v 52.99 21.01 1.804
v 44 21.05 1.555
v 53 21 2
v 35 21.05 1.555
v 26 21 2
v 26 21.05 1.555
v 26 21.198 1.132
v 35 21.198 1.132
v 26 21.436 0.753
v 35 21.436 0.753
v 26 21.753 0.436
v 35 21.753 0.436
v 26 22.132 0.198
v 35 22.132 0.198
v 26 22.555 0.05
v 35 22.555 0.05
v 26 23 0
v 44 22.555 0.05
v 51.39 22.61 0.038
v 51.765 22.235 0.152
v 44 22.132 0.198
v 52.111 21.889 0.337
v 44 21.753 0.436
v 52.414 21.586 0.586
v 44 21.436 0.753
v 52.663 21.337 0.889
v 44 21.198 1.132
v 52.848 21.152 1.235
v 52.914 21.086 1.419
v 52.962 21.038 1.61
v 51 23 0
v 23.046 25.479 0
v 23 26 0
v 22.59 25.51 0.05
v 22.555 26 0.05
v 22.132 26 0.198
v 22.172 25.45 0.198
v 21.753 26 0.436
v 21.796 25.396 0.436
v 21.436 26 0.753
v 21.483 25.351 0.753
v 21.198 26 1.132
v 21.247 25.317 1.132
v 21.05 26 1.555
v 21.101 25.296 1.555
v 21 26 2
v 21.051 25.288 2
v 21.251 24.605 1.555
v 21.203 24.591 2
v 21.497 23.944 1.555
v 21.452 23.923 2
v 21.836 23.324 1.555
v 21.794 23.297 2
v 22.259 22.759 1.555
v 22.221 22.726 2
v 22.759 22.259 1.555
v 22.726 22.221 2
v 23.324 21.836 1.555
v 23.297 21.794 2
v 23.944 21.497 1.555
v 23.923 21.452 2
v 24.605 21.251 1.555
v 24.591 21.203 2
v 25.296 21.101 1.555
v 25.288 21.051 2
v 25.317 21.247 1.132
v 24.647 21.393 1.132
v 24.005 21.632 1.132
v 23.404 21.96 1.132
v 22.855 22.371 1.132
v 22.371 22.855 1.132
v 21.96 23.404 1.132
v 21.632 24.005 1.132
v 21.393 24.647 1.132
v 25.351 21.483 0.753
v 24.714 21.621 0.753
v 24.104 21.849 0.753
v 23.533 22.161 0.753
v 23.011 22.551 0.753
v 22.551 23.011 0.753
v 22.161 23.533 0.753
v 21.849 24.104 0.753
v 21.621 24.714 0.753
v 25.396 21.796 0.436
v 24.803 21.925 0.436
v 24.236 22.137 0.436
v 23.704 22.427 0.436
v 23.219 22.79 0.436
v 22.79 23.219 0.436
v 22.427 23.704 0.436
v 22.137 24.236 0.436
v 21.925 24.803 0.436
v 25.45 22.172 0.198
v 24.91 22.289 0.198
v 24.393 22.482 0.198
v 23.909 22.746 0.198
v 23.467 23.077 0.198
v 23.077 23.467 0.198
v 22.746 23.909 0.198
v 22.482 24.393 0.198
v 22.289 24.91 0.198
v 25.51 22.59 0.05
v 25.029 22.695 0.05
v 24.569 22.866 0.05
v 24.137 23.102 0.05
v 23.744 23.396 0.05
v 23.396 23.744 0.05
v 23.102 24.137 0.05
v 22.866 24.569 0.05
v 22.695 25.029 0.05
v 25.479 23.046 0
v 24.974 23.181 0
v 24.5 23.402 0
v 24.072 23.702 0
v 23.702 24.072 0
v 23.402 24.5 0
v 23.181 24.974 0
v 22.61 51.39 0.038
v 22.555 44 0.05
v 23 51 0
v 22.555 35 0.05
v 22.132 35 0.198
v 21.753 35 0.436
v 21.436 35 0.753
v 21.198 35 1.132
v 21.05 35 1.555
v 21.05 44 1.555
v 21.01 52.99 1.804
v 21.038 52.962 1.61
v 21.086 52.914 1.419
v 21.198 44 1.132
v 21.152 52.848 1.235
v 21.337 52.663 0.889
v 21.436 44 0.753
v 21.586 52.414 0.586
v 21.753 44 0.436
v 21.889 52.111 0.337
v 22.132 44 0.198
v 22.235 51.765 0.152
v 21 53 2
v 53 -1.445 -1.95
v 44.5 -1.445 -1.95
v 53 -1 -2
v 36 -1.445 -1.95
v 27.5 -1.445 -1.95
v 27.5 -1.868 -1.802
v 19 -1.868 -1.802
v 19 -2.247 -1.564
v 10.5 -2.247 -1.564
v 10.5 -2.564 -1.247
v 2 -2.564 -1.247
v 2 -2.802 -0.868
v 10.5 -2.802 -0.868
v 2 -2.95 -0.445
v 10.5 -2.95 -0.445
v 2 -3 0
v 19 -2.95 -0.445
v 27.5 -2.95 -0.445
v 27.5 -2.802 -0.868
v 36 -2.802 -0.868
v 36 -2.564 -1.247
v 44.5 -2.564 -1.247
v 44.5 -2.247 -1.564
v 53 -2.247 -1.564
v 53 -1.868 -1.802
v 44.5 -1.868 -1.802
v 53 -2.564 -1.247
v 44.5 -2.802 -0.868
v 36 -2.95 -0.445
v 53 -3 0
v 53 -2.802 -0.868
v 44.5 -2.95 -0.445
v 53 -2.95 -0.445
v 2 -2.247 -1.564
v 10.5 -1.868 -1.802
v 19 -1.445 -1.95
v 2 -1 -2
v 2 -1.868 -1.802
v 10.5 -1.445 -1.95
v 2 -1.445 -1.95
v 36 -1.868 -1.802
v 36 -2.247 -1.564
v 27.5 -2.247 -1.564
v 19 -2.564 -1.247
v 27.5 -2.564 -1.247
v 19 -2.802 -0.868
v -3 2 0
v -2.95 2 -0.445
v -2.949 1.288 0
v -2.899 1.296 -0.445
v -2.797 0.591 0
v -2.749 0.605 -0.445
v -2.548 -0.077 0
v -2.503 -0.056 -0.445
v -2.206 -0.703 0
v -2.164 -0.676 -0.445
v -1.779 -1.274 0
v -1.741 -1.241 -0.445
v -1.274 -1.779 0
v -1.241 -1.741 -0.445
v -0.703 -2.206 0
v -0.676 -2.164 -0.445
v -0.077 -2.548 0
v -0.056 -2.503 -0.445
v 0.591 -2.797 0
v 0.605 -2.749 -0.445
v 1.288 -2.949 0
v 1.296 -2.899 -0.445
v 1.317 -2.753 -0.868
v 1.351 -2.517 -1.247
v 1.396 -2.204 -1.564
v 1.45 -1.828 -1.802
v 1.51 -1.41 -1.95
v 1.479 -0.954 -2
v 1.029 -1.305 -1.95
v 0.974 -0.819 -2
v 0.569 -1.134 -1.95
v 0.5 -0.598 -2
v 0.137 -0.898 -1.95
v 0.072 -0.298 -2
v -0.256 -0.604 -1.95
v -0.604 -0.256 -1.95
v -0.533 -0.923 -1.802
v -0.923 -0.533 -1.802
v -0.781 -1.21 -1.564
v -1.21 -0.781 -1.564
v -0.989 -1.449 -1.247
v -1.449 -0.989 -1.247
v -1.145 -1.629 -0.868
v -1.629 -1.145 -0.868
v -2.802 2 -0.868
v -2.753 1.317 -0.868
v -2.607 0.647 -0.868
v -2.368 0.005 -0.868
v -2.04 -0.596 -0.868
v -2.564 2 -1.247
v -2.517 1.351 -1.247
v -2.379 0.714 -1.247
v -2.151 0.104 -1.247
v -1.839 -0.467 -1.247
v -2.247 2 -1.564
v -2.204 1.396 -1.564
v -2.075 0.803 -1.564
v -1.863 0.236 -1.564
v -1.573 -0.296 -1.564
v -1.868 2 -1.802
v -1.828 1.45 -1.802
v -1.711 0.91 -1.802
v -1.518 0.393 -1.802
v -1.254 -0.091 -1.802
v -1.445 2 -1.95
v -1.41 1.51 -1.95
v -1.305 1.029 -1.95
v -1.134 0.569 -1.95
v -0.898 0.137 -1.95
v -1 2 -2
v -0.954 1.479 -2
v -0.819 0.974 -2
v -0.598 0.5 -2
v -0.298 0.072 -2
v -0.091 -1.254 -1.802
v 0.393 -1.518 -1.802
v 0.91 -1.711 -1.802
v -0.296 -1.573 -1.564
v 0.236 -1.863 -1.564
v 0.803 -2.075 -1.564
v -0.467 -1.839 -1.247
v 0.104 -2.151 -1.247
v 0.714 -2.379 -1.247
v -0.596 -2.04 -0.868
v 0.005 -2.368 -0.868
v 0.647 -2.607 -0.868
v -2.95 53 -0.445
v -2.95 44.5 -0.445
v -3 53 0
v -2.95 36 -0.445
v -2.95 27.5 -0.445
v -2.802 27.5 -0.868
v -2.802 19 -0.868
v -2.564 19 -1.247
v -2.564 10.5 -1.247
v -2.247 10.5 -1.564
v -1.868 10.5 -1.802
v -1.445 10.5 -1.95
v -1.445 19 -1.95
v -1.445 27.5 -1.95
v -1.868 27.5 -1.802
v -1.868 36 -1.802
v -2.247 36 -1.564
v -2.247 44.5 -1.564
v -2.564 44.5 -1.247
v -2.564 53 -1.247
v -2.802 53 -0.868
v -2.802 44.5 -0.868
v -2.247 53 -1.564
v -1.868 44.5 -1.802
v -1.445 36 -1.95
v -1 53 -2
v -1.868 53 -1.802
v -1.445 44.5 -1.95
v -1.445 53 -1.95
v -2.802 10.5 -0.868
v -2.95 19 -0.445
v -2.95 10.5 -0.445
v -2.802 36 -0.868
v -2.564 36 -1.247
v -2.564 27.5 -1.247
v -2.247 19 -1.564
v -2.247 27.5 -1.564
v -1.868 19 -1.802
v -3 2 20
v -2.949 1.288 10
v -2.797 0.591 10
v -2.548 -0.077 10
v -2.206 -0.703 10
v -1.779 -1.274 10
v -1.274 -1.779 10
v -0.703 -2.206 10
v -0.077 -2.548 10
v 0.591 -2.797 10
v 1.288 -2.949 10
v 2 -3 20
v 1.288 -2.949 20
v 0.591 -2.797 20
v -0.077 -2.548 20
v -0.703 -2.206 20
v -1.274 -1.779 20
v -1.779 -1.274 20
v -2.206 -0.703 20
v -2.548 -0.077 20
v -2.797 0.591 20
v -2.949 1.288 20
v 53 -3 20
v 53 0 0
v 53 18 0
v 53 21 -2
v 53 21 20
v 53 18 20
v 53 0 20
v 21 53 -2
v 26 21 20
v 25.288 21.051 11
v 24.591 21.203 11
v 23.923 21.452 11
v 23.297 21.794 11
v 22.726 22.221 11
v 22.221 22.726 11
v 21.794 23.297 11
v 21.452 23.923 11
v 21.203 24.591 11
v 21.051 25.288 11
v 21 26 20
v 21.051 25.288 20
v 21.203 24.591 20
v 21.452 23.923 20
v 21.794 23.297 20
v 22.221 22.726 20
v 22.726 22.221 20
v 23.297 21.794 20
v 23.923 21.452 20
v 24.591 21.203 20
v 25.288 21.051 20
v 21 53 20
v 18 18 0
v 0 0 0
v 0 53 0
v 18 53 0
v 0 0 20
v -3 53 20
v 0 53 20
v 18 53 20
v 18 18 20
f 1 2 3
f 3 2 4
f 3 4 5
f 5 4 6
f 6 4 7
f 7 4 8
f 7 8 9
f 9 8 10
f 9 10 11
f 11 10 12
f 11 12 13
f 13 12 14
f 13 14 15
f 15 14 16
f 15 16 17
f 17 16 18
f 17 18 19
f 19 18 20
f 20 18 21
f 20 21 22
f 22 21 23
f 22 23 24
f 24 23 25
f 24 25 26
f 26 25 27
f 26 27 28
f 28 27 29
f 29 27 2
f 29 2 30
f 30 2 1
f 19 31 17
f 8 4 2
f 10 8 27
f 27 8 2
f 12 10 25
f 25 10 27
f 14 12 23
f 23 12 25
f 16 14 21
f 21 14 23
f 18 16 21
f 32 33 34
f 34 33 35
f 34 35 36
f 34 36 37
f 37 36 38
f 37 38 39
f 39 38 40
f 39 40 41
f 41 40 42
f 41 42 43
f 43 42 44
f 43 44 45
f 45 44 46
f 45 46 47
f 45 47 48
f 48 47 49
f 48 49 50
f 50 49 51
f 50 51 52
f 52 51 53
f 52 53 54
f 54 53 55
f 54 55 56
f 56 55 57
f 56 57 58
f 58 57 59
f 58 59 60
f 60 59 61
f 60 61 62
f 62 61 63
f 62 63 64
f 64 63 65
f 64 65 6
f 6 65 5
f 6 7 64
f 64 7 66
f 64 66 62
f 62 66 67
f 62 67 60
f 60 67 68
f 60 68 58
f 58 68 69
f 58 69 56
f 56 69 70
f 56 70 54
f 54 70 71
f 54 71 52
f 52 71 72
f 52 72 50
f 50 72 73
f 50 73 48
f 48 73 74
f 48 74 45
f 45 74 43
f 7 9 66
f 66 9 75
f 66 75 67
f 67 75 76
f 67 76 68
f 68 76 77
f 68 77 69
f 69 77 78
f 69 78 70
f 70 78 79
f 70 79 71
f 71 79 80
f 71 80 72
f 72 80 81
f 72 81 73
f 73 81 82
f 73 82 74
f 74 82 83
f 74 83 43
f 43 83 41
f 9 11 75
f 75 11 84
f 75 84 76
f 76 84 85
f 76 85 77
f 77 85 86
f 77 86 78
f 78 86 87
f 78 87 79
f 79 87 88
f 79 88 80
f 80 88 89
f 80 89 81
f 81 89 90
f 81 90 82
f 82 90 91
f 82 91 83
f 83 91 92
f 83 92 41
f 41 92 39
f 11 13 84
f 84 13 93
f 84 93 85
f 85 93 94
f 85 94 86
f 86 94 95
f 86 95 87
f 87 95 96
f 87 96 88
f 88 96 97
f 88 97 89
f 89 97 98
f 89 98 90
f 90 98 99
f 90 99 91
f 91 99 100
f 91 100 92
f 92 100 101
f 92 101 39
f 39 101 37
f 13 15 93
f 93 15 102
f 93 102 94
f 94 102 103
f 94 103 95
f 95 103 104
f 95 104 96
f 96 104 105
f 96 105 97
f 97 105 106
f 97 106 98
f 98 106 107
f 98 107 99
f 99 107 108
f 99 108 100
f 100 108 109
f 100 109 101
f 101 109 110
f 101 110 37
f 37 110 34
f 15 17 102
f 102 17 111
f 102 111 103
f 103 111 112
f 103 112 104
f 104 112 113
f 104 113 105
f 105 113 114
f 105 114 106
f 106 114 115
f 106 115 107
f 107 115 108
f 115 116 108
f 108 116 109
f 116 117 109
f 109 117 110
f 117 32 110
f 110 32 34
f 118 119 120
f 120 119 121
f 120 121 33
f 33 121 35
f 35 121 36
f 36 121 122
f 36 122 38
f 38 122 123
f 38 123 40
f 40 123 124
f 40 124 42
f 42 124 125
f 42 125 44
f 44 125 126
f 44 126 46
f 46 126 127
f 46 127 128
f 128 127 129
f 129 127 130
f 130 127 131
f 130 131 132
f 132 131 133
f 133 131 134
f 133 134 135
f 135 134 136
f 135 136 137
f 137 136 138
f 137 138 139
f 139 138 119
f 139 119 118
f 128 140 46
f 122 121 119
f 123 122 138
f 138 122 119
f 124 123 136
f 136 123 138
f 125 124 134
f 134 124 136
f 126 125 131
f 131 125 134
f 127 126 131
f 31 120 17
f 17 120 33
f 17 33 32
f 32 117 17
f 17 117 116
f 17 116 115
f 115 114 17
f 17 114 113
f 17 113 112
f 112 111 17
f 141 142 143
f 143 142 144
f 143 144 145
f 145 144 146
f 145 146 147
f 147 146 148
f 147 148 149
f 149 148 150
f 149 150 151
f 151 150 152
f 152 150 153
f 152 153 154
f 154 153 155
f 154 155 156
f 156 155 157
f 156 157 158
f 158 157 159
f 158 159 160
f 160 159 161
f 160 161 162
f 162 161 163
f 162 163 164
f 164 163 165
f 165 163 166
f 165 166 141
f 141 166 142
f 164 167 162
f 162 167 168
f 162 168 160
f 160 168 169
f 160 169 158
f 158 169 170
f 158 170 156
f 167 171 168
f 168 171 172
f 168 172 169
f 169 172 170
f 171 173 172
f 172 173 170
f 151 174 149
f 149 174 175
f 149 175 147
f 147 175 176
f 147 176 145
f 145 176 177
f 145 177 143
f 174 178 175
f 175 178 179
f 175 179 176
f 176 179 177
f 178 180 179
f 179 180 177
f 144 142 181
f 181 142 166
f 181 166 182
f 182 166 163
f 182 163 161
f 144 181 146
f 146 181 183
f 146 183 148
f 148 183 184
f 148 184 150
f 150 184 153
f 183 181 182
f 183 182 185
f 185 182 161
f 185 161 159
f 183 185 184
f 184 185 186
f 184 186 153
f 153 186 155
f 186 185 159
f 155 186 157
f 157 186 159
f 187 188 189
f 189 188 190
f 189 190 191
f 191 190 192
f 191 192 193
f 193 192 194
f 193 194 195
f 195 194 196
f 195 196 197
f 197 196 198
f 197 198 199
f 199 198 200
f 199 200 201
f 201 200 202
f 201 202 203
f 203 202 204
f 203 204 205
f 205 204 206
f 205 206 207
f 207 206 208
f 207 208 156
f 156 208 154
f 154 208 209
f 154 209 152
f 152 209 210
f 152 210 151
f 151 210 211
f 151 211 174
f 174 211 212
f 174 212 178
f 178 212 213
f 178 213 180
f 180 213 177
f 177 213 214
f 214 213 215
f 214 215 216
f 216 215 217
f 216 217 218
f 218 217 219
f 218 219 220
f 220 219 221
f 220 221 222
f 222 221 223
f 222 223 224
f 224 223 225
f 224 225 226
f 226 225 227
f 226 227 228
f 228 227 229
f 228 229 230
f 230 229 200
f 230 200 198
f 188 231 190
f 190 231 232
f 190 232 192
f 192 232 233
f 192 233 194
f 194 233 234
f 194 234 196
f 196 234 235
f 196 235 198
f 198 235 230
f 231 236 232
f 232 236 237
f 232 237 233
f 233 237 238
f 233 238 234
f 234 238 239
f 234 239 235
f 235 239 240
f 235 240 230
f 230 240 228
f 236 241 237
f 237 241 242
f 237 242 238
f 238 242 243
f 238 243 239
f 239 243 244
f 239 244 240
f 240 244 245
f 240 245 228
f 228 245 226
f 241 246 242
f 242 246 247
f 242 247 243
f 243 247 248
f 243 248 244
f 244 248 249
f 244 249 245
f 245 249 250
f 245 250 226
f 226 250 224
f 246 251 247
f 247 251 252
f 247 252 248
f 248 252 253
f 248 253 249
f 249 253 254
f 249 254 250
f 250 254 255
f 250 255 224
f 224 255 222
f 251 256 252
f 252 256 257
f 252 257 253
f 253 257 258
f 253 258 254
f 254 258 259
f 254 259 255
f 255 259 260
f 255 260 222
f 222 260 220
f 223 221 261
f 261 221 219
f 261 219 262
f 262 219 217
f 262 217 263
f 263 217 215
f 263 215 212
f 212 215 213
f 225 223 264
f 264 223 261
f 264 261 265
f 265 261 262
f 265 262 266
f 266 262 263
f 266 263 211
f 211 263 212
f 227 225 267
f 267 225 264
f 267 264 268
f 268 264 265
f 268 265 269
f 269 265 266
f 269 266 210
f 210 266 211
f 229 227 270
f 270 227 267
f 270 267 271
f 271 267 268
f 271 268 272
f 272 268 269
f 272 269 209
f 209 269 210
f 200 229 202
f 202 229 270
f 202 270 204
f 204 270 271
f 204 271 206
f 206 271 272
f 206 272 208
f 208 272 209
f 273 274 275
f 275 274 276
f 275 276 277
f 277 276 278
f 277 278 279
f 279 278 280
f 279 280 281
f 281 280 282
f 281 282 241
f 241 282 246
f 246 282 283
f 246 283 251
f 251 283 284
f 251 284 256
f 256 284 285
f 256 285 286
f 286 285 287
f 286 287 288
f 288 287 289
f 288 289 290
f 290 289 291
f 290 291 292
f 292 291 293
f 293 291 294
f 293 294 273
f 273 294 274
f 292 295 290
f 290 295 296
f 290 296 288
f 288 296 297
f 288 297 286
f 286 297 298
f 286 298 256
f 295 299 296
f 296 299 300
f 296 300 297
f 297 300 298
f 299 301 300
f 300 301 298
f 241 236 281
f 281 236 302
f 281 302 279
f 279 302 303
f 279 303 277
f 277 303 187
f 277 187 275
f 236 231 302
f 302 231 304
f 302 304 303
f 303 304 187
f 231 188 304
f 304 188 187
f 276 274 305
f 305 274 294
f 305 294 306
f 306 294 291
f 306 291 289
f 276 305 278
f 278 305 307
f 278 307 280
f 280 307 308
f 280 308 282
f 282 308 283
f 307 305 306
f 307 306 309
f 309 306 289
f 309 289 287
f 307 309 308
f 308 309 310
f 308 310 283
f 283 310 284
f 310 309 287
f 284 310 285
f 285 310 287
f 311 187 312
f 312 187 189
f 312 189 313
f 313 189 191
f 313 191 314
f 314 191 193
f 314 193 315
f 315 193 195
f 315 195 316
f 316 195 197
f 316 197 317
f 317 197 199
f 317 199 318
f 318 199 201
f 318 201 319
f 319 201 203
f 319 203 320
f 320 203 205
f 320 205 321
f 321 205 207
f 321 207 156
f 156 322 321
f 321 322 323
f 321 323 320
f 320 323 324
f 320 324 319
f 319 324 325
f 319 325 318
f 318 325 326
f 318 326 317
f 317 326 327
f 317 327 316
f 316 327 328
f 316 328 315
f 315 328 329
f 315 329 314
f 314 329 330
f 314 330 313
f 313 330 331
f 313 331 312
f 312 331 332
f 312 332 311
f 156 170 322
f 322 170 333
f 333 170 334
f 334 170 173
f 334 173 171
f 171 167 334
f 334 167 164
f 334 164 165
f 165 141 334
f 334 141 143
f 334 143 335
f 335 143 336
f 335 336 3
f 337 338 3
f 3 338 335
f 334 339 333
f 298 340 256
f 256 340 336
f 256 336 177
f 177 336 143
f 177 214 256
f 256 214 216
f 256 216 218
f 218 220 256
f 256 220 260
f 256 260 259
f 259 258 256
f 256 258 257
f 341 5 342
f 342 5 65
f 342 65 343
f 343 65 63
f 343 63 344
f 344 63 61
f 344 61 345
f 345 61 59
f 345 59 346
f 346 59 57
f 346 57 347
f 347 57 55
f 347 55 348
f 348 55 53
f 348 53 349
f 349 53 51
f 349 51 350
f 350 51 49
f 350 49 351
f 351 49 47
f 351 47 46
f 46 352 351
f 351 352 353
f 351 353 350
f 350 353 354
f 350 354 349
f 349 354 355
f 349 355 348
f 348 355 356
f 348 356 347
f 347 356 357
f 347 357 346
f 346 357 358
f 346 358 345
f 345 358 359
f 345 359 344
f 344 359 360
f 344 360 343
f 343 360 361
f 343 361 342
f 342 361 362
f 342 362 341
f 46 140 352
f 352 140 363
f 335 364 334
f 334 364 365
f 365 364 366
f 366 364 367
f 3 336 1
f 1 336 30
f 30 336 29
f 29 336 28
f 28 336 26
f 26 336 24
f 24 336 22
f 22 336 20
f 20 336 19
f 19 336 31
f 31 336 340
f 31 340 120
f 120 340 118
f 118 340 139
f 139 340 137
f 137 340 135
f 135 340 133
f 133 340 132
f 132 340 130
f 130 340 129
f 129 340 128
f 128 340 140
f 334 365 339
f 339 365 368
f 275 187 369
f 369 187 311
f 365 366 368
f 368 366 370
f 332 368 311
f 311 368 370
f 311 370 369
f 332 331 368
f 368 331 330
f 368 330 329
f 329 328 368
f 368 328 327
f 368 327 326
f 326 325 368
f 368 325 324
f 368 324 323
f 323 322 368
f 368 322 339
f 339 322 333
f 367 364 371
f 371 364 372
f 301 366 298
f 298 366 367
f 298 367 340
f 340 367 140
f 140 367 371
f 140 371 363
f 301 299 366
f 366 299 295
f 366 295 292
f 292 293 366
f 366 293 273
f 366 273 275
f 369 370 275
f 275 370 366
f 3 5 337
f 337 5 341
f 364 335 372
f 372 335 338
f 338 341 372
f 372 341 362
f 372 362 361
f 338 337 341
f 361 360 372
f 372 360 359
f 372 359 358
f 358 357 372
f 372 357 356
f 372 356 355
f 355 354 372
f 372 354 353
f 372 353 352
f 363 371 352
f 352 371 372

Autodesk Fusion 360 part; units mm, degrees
sketch "Sketch1" plane through (0, 0, 0) normal (0, 0, 1) x (1, 0, 0)
  line L0 (0, 0) -> (18, 0) construction
  line L1 (18, 18) -> (18, 50)
  line L2 (0, 50) -> (0, 0)
  line L3 (0, 0) -> (50, 0)
  line L4 (50, 18) -> (18, 18)
  line L5 (0, 18) -> (0, 0) construction
  line L6 (53, 21) -> (21, 21)
  line L7 (21, 21) -> (21, 53)
  line L8 (-3, 53) -> (-3, -3)
  line L9 (-3, -3) -> (53, -3)
  line L10 (50, 18) -> (53, 18)
  line L11 (50, 0) -> (53, 0)
  line L12 (0, 50) -> (0, 53)
  line L13 (18, 50) -> (18, 53)
  line L14 (21, 53) -> (18, 53)
  line L15 (0, 53) -> (-3, 53)
  line L16 (53, -3) -> (53, 0)
  line L17 (53, 18) -> (53, 21)
  dimension "d1" = 18
  dimension "d2" = 50
  dimension "d3" = 50
  dimension "d4" = 18
extrude "Extrude1" add sketch "Sketch1" along normal blind 20 makes body 1 at (18, 29.6667, 13.3333) makes body 2 at (15.6667, -3, 6.6667)
sketch "Sketch2" plane through (0, 0, 0) normal (0, 0, -1) x (1, 0, 0)
  line L0 (53, -18) -> (18, -18)
  line L1 (18, -18) -> (18, -53)
  line L2 (18, -53) -> (21, -53)
  line L3 (21, -53) -> (21, -21)
  line L4 (21, -21) -> (53, -21)
  line L5 (53, -21) -> (53, -18)
  line L6 (0, -53) -> (0, 0)
  line L7 (0, 0) -> (53, 0)
  line L8 (53, 0) -> (53, 3)
  line L9 (53, 3) -> (-3, 3)
  line L10 (-3, 3) -> (-3, -53)
  line L11 (-3, -53) -> (0, -53)
  line L12 (-3, 3) -> (53, 3) construction
  line L13 (53, 3) -> (53, -21)
  line L14 (53, -21) -> (21, -53)
  line L15 (21, -53) -> (-3, -53)
  line L16 (-3, -53) -> (-3, 3)
  line L17 (-3, 3) -> (53, 3)
extrude "Extrude2" add sketch "Sketch2" along normal blind 2 bodies 1 2
fillet "Fillet1" radius 5 2 edges at (21, 21, 10) (-3, -3, 9) on bodies 1
fillet "Fillet2" radius 2 6 edges at (27.5, -3, -2) (-1.5355, -1.5355, -2) (-3, 27.5, -2) (39.5, 21, 0) (22.4645, 22.4645, 0) (21, 39.5, 0) on bodies 1
